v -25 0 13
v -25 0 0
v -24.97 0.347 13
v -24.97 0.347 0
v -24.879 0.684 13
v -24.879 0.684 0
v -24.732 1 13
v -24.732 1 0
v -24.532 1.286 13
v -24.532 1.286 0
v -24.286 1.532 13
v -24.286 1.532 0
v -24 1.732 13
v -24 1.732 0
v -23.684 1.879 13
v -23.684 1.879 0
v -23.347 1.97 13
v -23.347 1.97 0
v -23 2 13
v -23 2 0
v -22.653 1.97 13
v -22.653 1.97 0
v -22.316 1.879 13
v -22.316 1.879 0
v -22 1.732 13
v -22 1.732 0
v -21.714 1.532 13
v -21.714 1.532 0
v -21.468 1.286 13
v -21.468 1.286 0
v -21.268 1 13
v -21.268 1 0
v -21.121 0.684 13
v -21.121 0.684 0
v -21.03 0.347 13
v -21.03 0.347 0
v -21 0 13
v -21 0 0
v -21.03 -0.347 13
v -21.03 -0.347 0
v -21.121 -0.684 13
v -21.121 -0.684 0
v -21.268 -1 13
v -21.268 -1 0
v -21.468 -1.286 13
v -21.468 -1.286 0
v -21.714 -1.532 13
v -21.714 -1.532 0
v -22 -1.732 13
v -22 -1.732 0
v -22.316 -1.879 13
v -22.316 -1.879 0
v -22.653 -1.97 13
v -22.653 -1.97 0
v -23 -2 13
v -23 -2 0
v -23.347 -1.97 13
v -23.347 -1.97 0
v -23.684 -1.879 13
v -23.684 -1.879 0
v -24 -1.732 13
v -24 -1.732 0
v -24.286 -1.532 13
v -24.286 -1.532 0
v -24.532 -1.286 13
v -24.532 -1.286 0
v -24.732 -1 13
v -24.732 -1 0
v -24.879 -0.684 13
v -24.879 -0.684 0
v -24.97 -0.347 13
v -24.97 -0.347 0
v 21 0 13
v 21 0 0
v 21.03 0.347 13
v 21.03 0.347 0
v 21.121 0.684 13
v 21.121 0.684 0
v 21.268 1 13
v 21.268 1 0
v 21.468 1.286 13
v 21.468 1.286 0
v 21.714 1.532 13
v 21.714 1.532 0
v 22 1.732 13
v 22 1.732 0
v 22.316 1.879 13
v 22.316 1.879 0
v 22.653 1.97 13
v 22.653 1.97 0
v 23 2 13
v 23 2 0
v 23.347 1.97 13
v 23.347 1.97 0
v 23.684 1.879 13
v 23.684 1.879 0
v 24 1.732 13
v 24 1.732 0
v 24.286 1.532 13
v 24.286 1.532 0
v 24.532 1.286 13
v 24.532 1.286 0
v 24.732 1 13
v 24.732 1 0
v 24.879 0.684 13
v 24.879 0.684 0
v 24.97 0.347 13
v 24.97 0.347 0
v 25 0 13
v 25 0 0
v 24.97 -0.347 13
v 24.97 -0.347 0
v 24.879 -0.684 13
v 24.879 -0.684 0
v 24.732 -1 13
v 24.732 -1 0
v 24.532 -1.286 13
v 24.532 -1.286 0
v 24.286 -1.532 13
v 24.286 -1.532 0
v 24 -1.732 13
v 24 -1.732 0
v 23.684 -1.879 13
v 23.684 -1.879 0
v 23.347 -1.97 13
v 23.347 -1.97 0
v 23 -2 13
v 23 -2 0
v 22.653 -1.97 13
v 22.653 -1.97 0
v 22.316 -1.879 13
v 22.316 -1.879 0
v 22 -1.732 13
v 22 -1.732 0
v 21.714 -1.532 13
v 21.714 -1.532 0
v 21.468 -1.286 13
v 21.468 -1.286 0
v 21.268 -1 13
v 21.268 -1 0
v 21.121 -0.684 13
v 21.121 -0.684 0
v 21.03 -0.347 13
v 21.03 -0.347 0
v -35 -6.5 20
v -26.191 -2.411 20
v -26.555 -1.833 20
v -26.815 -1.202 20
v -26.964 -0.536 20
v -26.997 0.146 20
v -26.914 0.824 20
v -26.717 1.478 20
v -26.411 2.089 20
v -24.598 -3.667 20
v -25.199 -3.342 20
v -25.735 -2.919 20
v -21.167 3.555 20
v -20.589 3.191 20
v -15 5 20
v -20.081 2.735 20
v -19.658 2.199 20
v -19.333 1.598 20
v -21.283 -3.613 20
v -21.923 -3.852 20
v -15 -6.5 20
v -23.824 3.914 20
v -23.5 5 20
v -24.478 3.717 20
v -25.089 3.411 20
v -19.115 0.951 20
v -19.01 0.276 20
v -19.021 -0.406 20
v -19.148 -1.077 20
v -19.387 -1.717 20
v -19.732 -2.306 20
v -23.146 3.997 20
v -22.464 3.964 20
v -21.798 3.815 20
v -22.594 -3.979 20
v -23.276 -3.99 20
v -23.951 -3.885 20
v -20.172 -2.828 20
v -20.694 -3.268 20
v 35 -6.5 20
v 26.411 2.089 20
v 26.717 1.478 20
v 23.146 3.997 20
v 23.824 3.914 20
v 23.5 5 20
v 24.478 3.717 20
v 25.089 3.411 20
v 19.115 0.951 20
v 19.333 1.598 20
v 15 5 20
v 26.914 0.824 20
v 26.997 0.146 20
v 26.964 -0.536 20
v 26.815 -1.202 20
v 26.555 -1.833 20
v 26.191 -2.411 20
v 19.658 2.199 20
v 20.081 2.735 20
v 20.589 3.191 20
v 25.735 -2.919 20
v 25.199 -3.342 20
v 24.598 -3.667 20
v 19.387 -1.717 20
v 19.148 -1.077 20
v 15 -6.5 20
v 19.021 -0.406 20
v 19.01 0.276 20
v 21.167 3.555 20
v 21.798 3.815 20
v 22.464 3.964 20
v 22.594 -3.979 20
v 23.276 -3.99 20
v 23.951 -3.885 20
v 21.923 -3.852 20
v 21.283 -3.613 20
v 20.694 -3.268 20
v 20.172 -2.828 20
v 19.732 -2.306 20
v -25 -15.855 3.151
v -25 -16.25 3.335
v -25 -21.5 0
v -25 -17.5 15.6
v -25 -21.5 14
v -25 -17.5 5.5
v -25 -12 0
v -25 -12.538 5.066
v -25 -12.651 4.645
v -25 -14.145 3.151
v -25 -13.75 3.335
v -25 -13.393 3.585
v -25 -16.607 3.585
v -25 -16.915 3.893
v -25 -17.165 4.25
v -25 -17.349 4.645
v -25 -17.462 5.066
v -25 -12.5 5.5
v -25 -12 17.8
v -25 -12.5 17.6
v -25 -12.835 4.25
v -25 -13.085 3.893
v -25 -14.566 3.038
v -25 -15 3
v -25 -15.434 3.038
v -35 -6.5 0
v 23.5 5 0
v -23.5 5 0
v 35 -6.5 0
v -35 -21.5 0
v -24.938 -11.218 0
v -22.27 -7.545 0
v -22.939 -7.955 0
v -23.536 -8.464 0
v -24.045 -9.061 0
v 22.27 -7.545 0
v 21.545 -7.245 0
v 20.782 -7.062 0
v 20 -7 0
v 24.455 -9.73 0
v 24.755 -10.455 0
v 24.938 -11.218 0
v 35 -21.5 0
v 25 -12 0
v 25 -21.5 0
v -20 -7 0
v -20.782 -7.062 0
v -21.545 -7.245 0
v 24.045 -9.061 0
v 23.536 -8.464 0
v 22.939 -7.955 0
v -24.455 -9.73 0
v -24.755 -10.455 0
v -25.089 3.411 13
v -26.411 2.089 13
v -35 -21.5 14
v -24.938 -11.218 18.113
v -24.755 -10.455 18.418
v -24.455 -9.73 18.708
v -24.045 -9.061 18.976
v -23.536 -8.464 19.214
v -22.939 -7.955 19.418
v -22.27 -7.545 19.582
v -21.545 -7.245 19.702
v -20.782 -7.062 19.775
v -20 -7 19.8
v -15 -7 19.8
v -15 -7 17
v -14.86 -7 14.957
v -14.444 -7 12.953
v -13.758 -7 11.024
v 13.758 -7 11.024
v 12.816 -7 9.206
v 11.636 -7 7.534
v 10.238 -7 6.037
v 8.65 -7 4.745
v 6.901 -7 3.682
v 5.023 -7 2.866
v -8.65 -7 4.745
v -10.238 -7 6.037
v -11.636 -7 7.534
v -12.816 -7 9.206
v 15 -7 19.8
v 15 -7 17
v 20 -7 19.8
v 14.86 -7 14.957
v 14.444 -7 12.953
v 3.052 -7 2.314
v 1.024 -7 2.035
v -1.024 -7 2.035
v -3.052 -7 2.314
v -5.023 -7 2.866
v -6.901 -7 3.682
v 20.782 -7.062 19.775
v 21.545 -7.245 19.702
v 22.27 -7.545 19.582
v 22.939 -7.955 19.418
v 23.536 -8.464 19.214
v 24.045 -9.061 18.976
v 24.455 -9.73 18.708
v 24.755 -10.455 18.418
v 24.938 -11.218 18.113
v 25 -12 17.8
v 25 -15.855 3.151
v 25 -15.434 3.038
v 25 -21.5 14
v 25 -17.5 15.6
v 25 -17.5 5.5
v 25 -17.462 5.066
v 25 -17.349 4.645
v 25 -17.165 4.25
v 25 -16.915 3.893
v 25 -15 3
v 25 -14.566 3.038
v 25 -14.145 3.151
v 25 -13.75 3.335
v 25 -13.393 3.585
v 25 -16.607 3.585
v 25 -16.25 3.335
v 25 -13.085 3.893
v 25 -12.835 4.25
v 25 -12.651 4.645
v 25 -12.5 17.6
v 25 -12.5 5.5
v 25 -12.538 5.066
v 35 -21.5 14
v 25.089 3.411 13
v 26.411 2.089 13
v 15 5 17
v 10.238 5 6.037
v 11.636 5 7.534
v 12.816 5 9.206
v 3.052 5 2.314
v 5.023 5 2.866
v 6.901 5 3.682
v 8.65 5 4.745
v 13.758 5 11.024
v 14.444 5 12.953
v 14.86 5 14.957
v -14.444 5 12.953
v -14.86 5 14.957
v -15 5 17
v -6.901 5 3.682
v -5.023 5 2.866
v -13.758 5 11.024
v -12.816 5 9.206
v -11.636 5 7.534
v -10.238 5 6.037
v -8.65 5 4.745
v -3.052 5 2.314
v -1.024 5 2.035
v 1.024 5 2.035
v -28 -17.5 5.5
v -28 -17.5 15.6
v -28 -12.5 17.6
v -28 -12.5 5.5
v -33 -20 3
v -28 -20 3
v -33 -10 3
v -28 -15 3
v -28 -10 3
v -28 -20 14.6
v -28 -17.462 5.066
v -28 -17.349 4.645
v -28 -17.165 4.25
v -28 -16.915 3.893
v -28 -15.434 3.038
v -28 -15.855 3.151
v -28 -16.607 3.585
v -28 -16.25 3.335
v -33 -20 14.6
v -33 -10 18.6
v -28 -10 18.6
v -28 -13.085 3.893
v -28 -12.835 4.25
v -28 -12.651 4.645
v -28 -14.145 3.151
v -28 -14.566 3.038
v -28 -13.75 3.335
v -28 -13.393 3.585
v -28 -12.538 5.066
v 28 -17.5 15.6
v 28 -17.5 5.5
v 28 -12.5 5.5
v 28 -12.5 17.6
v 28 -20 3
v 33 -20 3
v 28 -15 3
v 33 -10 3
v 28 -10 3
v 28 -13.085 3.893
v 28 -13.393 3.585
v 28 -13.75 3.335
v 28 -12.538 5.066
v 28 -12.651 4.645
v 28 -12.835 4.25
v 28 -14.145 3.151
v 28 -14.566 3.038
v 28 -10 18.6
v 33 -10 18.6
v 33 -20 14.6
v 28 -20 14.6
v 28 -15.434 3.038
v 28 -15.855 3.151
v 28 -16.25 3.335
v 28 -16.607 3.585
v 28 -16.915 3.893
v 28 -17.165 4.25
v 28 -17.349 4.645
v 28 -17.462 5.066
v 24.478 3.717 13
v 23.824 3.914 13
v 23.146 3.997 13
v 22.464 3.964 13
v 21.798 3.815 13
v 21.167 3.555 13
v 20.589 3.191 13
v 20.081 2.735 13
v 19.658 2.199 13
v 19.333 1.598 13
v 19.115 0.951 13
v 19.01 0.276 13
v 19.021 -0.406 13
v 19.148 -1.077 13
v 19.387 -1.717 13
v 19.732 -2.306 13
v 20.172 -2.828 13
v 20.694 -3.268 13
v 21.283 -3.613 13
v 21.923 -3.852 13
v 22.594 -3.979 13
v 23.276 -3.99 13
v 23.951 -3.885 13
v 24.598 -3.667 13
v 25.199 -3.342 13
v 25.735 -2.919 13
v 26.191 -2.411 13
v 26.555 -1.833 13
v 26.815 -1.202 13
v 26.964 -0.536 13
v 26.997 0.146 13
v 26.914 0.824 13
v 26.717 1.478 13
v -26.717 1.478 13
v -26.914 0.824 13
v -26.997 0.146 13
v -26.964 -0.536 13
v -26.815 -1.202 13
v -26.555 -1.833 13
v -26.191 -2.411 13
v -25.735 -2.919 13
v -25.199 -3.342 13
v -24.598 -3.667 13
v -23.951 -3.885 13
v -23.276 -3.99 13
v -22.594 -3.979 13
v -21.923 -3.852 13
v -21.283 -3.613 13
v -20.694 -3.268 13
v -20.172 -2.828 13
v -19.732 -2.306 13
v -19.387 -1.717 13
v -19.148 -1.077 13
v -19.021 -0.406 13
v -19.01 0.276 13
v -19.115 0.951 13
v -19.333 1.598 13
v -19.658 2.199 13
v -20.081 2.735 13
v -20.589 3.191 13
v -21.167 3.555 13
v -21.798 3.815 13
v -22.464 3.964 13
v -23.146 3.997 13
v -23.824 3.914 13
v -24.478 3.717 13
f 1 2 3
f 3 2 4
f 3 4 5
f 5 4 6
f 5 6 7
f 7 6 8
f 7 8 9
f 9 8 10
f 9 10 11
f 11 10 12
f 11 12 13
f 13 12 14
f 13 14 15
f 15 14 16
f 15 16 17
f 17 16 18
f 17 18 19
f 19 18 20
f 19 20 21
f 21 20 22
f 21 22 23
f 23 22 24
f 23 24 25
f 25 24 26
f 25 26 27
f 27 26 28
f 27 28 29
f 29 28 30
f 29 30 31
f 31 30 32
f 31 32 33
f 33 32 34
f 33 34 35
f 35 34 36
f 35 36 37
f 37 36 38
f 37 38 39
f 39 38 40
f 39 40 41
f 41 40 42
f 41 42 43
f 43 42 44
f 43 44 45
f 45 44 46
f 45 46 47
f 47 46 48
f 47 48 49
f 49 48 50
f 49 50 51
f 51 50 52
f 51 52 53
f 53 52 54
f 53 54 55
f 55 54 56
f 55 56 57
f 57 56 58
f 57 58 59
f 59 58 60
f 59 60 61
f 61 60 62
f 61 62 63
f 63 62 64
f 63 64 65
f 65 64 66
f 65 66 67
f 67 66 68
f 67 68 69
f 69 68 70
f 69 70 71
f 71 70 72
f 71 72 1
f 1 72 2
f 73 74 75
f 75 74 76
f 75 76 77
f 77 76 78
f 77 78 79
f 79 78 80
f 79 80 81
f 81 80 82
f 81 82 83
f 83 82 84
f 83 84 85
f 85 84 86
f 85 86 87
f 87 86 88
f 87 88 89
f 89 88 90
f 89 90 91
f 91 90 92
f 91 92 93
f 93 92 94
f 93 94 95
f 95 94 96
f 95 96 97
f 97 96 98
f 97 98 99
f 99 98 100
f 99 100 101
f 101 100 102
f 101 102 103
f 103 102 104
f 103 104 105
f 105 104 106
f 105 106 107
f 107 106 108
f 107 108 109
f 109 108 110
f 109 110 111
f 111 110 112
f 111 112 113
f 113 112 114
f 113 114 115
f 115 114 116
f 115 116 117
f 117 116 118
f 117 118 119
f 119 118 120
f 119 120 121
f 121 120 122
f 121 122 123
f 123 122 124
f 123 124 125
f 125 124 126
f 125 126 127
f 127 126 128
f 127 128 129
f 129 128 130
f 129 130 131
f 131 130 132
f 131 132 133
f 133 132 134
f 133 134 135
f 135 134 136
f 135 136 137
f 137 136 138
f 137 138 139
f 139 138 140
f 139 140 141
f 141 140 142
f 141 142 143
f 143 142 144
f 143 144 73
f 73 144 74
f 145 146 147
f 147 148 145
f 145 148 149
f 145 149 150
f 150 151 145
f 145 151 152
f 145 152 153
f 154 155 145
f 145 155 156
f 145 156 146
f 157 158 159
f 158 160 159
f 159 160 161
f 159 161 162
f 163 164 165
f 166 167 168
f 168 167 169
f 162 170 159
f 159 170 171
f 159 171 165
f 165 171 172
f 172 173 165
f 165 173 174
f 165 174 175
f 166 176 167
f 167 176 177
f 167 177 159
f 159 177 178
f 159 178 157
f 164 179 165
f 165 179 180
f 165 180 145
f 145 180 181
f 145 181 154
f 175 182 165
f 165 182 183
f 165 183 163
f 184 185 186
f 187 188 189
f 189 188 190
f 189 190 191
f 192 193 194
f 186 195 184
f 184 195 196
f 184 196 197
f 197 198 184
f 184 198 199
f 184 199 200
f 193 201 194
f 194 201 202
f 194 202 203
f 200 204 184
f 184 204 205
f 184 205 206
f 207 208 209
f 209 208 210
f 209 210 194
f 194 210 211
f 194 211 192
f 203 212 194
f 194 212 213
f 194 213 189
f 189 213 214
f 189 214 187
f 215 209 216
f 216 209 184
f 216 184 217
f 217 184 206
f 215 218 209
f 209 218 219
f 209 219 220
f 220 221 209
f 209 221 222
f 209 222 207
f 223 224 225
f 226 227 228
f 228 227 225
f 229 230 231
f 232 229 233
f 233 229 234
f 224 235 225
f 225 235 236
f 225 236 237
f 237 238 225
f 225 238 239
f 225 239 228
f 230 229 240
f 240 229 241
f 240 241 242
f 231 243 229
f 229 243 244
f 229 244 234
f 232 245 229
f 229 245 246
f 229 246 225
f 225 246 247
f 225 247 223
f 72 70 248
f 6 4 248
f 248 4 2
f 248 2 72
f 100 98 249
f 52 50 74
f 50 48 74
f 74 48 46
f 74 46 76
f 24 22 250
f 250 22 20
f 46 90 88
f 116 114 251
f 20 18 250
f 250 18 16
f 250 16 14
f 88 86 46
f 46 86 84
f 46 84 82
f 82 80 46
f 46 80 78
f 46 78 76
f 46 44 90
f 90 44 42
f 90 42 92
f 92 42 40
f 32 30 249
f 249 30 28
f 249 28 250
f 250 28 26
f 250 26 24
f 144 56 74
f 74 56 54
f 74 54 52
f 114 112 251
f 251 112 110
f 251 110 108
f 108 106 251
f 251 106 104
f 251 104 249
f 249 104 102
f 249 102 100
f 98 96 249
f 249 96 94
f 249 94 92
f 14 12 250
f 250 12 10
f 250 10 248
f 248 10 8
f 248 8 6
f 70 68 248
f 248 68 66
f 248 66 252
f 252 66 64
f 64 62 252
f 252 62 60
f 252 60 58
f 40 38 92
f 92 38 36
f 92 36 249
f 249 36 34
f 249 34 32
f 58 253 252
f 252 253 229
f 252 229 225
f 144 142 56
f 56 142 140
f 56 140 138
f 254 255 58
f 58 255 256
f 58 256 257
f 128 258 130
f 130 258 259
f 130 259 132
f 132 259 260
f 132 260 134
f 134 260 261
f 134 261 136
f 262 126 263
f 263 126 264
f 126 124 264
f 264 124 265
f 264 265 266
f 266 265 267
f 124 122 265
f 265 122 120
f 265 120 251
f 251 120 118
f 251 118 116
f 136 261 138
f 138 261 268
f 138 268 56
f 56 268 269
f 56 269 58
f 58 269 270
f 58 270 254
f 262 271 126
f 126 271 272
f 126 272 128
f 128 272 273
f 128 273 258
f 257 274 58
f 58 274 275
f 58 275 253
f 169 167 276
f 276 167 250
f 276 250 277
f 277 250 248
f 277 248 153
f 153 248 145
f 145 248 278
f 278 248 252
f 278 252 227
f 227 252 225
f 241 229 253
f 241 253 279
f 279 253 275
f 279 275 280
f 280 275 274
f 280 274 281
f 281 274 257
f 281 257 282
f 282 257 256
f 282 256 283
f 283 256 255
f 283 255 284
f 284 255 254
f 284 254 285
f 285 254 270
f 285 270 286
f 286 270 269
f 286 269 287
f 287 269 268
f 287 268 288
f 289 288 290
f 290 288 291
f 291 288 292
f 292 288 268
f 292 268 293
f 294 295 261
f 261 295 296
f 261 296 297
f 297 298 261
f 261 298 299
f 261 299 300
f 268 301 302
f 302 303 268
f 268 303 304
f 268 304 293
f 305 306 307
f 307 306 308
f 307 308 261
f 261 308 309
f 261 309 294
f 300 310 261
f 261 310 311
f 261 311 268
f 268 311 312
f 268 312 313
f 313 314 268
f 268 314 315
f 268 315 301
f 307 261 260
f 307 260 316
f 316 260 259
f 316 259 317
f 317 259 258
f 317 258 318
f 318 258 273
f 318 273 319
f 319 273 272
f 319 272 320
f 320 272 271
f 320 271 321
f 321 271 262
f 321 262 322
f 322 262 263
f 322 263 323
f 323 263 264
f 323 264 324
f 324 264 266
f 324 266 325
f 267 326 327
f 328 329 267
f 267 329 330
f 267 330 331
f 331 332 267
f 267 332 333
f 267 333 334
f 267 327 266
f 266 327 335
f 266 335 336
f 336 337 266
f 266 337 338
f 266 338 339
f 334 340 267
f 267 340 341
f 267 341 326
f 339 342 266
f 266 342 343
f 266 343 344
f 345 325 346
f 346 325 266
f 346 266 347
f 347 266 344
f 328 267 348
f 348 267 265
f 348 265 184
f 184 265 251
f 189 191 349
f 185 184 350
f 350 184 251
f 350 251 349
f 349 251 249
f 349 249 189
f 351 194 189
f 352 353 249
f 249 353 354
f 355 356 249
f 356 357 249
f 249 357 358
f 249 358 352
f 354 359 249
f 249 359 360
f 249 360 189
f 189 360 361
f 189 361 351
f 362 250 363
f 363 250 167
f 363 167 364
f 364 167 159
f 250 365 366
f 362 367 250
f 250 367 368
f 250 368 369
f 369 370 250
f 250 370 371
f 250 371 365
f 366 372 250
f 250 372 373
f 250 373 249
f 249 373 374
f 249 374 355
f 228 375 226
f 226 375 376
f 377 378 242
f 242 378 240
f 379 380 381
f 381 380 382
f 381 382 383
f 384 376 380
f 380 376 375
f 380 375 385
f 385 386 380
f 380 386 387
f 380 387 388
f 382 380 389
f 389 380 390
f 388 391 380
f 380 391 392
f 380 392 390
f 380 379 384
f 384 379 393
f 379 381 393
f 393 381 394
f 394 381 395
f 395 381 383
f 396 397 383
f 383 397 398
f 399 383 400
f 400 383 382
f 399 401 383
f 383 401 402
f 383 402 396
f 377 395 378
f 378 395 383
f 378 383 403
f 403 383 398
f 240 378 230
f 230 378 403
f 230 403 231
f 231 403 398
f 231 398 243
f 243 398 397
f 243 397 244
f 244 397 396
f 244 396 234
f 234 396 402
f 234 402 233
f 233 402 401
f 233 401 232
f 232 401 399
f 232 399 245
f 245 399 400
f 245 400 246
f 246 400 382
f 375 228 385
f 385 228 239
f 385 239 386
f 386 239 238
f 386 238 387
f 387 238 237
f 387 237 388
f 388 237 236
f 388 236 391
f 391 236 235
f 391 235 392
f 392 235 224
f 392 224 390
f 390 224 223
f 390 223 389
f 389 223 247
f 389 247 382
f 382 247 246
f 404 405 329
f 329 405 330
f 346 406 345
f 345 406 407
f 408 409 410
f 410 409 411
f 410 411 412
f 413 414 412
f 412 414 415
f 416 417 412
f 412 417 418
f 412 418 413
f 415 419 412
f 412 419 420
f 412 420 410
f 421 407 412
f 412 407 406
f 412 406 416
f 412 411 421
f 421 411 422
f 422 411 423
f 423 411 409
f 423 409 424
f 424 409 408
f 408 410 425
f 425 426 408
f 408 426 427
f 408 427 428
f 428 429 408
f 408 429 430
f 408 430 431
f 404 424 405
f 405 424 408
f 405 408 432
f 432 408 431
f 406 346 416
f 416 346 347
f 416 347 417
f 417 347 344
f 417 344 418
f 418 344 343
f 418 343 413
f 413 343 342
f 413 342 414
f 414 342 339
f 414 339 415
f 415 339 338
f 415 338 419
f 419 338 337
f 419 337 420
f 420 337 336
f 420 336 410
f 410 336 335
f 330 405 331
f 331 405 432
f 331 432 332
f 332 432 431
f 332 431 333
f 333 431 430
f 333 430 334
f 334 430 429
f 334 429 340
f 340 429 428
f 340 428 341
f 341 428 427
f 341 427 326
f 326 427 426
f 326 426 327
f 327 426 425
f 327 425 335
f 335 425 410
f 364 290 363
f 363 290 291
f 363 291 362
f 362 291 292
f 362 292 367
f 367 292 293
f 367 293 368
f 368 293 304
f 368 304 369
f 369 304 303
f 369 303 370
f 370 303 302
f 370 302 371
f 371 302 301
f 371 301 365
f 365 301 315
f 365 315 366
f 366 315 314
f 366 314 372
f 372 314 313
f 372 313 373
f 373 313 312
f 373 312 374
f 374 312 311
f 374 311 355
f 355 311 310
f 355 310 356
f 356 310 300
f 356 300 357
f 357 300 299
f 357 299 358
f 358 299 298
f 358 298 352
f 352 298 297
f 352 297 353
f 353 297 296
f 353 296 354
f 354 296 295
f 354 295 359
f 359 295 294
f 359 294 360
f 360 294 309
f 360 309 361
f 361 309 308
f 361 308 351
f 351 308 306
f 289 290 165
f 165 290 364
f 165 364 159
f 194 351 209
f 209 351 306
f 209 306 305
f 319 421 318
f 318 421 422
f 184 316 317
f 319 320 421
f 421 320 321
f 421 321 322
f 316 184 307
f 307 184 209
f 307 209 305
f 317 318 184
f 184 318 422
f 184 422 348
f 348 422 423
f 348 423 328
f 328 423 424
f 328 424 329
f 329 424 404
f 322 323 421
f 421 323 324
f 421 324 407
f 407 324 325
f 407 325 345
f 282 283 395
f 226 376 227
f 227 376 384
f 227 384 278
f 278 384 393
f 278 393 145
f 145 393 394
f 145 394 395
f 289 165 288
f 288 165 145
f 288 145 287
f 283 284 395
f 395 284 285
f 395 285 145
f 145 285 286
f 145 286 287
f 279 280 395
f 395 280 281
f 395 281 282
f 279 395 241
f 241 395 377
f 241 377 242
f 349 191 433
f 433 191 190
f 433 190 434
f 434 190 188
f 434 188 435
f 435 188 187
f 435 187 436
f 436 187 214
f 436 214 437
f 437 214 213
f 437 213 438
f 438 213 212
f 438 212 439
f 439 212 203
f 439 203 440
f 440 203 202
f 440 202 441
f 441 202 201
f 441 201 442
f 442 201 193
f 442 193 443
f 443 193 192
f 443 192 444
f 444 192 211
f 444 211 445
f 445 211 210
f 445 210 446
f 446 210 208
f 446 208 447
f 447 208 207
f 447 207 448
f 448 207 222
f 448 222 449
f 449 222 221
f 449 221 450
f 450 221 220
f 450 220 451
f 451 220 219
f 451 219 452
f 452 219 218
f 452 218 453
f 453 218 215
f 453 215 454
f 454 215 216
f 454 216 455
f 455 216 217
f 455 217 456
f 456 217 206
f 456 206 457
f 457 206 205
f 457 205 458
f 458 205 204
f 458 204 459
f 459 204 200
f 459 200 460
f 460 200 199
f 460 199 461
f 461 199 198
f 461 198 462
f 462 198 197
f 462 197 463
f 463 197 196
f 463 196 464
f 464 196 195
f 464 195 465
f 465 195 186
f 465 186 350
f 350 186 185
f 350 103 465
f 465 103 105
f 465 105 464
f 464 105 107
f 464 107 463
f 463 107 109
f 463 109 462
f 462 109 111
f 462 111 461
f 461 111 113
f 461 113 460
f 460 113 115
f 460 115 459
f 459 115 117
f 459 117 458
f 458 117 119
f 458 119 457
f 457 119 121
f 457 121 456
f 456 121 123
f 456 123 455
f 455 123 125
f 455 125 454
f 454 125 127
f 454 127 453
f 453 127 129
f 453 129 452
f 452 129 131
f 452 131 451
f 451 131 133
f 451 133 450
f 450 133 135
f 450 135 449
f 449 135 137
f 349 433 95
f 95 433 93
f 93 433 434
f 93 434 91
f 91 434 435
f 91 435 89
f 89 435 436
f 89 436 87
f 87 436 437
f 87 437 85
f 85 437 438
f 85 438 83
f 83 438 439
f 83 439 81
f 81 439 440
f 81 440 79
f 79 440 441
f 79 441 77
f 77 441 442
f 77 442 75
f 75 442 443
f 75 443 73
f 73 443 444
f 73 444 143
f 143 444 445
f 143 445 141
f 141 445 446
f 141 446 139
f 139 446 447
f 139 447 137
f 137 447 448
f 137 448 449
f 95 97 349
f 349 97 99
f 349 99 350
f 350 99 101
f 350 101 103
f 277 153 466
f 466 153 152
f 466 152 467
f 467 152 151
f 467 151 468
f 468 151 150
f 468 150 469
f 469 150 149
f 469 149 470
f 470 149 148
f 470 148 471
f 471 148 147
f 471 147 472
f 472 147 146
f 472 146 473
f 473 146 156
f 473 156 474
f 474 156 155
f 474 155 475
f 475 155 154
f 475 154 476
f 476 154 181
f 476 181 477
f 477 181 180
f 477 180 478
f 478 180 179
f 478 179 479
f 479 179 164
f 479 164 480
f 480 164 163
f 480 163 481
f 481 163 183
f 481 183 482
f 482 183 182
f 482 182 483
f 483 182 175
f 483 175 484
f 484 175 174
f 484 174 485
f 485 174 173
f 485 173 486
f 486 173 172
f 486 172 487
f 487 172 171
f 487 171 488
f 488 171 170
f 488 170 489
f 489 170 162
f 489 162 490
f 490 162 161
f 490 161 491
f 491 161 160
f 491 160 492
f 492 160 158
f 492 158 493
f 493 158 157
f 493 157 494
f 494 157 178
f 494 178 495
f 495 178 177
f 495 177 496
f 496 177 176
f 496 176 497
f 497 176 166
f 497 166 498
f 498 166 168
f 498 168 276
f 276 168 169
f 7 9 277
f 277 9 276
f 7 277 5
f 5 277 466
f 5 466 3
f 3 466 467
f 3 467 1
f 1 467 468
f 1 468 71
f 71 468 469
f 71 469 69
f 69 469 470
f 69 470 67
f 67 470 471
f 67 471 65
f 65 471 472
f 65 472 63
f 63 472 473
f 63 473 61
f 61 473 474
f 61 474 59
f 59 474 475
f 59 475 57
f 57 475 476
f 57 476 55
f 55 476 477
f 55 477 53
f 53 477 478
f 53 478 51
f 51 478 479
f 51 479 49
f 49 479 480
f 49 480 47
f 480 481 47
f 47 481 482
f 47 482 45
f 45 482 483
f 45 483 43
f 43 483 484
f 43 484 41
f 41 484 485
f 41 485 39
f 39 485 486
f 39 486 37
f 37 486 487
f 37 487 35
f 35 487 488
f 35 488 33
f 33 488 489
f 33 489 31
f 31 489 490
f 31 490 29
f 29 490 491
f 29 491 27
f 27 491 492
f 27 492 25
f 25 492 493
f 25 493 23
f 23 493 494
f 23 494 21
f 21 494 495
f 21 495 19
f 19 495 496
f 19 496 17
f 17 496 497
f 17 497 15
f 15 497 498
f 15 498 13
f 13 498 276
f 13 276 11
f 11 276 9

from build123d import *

# Parameters (mm, degrees)
SKETCH1_R               = 2
BOSS_EXTRUDE1_DEPTH     = 20
SKETCH2_W               = 5.5
SKETCH2_H               = 5
SKETCH2_W_2             = 3
SKETCH2_W_3             = 2.5
CUT_EXTRUDE1_DEPTH      = 17
FILLET1_R               = 2.5
FILLET1_OF_MIRROR1_R    = 2.5
CUT_EXTRUDE2_DEPTH      = 43.839817927
CUT_EXTRUDE3_DEPTH      = 46.686431246
CUT_EXTRUDE3_DEPTH_BACK = 46.686431246
SKETCH5_R               = 4
CUT_EXTRUDE4_DEPTH      = 7


with BuildPart() as part:
    # Sketch1 → Boss-Extrude1 (new body)
    with BuildSketch(Plane.XY):
        with BuildLine():
            Line((-23.5, 5), (23.5, 5))
            Line((23.5, 5), (35, -6.5))
            Line((35, -6.5), (35, -21.5))
            Line((35, -21.5), (25, -21.5))
            Line((25, -21.5), (25, -12))
            ThreePointArc((25, -12), (23.535533906, -8.464466094), (20, -7))
            Line((20, -7), (-20, -7))
            ThreePointArc((-20, -7), (-23.535533906, -8.464466094), (-25, -12))
            Line((-25, -12), (-25, -21.5))
            Line((-25, -21.5), (-35, -21.5))
            Line((-35, -21.5), (-35, -6.5))
            Line((-35, -6.5), (-23.5, 5))
        make_face()
        with Locations((-23, 0)):
            Circle(SKETCH1_R, mode=Mode.SUBTRACT)
        with Locations((23, 0)):
            Circle(SKETCH1_R, mode=Mode.SUBTRACT)
    extrude(amount=BOSS_EXTRUDE1_DEPTH)

    # Sketch2 → Cut-Extrude1 (cut)
    with BuildSketch(Plane.XY.offset(20)):
        with Locations((-22.25, -15)):
            Rectangle(SKETCH2_W, SKETCH2_H)
        with Locations((-26.5, -15)):
            Rectangle(SKETCH2_W_2, SKETCH2_H)
        with Locations((-29.25, -15)):
            Rectangle(SKETCH2_W_3, SKETCH2_H)
        Polygon((-30.5, -12.5), (-28, -12.5), (-28, -10), (-33, -10), (-33, -20), (-28, -20), (-28, -17.5), (-30.5, -17.5), align=None)
    cut_extrude1 = extrude(amount=-CUT_EXTRUDE1_DEPTH, mode=Mode.SUBTRACT)

    # Fillet1
    fillet1_edges = [part.edges().sort_by_distance(p)[0] for p in [
        (-26.5, -17.5, 3),
        (-26.5, -12.5, 3),
    ]]
    fillet(fillet1_edges, radius=FILLET1_R - 0.0001)  # a hair under: the kernel refuses the full size

    # Mirror1: Cut-Extrude1 across plane
    add(cut_extrude1.mirror(Plane(origin=(0, 0, 0), x_dir=(0, 0, 1), z_dir=(1, 0, 0))), mode=Mode.SUBTRACT)

    # Fillet1 of Mirror1
    fillet1_of_mirror1_edges = [part.edges().sort_by_distance(p)[0] for p in [
        (26.5, -17.5, 3),
        (26.5, -12.5, 3),
    ]]
    fillet(fillet1_of_mirror1_edges, radius=FILLET1_OF_MIRROR1_R - 0.0001)  # a hair under: the kernel refuses the full size

    # Sketch3 → Cut-Extrude2 (cut, through all)
    with BuildSketch(Plane.XZ.offset(7)):
        with BuildLine():
            Line((-15, 47), (15, 47))
            Line((15, 47), (15, 17))
            ThreePointArc((15, 17), (0, 2), (-15, 17))
            Line((-15, 17), (-15, 47))
        make_face()
    extrude(amount=-CUT_EXTRUDE2_DEPTH, mode=Mode.SUBTRACT)

    # Sketch4 → Cut-Extrude3 (cut, two sides: drawn at the far end of the back side and taken through both)
    with BuildSketch(Plane(origin=(0, 0, 0), x_dir=(0, 0, -1), z_dir=(1, 0, 0)).offset(-CUT_EXTRUDE3_DEPTH_BACK)):
        Polygon((-14, -21.5), (-20, -6.5), (-20, -21.5), align=None)
    extrude(amount=CUT_EXTRUDE3_DEPTH + CUT_EXTRUDE3_DEPTH_BACK, mode=Mode.SUBTRACT)

    # Sketch5 → Cut-Extrude4 (cut)
    with BuildSketch(Plane.XY.offset(20)):
        with Locations((-23, 0)):
            Circle(SKETCH5_R)
        with Locations((23, 0)):
            Circle(SKETCH5_R)
    extrude(amount=-CUT_EXTRUDE4_DEPTH, mode=Mode.SUBTRACT)


solid = part.part
